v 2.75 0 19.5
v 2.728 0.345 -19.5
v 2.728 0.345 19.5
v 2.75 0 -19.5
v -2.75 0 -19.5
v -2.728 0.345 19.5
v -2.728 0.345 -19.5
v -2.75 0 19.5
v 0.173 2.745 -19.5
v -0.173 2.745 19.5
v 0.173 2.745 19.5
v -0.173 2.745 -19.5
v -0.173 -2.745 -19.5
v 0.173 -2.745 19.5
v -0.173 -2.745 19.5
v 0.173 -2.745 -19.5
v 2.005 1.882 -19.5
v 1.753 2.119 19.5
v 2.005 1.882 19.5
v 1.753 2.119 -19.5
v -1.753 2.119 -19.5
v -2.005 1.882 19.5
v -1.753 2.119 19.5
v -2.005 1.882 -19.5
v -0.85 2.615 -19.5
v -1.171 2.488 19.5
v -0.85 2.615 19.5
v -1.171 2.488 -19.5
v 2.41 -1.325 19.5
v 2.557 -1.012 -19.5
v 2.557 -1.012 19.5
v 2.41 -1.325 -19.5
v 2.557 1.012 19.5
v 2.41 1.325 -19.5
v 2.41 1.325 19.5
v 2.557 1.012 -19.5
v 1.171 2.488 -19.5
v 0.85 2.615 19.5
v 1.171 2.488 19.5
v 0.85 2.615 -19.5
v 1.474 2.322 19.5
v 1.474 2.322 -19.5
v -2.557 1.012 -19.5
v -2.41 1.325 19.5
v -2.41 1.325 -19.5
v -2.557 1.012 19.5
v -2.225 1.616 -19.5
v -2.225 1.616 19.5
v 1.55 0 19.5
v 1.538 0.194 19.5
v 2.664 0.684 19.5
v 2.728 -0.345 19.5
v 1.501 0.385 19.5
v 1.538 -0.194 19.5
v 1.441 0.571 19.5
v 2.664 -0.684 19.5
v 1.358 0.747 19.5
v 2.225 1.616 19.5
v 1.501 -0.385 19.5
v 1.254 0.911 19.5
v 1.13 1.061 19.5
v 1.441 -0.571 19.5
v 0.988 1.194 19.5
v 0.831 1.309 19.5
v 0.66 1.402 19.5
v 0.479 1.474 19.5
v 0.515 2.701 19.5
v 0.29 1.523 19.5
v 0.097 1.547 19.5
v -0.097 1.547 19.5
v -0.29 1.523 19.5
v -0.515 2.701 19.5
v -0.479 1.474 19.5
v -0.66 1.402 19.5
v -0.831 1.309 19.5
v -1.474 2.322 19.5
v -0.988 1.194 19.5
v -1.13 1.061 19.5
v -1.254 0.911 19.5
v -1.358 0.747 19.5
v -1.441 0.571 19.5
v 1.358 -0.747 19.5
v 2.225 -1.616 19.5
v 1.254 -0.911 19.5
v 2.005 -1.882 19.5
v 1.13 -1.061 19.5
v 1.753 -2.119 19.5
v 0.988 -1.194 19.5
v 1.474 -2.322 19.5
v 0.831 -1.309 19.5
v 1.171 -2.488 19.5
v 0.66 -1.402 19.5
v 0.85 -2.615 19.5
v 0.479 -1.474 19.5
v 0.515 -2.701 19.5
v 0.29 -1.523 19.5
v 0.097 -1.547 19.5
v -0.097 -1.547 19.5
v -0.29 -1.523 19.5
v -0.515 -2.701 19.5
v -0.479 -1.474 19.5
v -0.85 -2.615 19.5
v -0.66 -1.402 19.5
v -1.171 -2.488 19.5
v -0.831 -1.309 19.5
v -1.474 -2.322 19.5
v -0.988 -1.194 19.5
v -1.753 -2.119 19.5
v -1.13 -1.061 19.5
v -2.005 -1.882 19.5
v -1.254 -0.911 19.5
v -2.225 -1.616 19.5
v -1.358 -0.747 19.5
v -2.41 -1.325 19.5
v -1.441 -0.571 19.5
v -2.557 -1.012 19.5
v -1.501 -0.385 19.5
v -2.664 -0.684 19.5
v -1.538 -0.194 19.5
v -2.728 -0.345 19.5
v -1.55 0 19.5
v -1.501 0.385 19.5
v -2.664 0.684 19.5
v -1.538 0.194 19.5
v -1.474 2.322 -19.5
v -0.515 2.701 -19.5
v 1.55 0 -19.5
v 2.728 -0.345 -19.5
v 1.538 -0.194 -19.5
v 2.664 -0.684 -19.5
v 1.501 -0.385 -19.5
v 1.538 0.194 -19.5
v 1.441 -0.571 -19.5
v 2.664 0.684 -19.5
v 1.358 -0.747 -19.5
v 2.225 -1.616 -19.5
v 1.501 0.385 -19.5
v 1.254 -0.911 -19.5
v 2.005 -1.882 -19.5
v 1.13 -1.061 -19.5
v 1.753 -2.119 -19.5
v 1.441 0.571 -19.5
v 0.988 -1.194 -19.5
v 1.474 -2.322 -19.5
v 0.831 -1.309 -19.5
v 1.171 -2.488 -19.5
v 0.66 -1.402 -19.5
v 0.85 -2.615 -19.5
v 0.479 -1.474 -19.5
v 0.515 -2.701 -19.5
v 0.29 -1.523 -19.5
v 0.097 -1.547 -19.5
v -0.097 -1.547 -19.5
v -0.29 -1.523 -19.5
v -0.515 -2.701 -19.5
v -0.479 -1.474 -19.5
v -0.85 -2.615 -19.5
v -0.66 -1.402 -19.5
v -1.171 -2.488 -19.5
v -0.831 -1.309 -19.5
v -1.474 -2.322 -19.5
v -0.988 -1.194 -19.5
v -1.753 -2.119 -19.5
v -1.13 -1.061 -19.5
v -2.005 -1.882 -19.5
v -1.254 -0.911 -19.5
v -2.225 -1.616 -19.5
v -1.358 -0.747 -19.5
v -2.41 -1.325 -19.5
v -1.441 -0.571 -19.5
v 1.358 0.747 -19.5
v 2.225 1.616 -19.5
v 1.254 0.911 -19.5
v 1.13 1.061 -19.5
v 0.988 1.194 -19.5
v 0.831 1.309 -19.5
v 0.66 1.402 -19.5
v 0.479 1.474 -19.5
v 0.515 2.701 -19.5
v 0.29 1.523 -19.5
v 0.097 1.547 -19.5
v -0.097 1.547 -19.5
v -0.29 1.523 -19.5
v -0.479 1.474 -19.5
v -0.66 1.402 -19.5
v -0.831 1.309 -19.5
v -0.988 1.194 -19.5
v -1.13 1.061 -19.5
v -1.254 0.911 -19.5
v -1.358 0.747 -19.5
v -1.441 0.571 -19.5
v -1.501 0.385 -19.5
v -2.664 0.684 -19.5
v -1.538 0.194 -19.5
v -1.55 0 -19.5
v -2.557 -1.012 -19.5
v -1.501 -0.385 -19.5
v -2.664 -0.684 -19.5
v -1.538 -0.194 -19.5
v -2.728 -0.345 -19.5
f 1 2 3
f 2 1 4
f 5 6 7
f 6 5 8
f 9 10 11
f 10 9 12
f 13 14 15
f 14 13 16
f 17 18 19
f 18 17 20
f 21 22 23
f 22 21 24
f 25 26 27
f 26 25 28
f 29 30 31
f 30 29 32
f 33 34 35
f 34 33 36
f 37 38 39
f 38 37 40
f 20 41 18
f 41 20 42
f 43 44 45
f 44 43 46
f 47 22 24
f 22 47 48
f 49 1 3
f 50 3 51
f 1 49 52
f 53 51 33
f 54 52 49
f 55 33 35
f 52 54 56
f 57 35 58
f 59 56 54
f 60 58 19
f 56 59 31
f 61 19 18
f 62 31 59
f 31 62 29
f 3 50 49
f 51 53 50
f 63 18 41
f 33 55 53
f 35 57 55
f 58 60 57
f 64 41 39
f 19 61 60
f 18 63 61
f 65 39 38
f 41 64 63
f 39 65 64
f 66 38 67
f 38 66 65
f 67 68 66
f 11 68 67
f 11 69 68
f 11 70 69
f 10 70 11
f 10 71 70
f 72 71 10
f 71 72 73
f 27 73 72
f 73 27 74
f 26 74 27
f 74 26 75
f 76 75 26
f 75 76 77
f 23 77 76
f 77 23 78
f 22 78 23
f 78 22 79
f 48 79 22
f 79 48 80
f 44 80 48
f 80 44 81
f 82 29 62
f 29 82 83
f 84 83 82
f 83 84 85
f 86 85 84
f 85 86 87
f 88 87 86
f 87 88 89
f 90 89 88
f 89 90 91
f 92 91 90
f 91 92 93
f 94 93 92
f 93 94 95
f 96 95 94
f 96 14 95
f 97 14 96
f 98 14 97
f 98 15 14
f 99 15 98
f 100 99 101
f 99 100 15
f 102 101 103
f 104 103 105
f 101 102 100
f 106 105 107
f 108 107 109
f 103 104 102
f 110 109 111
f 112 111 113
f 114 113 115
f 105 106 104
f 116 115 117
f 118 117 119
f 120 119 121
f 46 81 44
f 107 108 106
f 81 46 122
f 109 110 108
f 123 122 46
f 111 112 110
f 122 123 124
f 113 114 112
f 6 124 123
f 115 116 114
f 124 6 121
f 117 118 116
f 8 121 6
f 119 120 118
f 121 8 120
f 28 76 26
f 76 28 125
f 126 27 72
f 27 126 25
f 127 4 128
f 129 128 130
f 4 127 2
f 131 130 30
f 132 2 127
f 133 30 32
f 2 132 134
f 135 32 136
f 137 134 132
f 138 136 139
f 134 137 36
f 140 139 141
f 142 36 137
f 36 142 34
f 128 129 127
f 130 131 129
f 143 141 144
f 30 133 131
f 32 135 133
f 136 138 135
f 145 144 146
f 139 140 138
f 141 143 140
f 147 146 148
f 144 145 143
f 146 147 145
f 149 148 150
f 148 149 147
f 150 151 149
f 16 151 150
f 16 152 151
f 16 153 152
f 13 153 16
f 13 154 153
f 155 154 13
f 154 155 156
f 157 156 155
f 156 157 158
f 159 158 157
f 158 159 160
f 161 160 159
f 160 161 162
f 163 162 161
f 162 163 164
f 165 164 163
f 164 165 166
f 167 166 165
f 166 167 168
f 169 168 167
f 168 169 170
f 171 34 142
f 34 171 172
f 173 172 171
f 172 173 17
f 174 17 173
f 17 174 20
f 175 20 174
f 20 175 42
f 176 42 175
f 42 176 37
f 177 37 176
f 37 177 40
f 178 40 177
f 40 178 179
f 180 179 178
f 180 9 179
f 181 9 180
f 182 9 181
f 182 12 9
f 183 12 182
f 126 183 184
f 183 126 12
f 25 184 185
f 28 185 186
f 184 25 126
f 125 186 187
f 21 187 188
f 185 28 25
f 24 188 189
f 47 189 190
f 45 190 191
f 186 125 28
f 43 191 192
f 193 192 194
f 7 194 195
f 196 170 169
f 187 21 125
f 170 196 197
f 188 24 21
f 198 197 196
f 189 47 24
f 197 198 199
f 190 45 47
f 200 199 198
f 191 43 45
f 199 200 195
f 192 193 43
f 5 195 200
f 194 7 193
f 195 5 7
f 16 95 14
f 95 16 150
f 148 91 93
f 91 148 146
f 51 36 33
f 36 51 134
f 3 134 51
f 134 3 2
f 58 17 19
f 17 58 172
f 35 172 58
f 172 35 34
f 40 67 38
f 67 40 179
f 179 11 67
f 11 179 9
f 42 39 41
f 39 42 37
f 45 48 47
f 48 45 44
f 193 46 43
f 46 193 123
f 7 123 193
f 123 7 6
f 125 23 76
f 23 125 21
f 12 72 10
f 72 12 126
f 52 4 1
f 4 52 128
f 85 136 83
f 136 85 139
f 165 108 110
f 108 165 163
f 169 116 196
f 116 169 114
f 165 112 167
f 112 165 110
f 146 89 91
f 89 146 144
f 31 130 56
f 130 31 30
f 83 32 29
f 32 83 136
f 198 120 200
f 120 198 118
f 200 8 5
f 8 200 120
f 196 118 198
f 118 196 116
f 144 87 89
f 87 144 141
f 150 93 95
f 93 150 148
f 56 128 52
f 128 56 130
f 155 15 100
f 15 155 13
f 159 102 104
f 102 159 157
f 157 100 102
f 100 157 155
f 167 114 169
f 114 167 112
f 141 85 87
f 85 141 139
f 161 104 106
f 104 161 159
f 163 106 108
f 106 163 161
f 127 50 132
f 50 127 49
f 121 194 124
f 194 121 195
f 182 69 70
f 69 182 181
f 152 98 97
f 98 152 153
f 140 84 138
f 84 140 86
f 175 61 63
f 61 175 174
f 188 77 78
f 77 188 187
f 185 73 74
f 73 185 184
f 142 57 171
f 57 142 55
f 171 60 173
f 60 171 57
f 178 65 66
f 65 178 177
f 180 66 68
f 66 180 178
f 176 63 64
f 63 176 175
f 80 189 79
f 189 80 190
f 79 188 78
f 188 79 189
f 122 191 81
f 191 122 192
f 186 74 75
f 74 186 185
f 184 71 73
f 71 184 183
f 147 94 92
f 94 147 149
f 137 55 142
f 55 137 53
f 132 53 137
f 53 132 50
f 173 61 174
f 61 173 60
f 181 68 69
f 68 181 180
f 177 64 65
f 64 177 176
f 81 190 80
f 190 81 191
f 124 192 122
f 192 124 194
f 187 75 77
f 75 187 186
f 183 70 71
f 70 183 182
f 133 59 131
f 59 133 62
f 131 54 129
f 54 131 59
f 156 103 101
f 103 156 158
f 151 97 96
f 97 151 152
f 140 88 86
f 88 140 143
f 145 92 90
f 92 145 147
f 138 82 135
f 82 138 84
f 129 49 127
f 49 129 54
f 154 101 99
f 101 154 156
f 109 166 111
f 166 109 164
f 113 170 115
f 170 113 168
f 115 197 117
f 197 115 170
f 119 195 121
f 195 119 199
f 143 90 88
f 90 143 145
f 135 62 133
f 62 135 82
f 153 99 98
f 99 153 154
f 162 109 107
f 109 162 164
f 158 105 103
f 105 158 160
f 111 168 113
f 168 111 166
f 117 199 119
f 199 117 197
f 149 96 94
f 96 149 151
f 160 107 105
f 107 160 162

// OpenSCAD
$fn = 50;


difference() {
	union() {
		translate(v = [0, 0, -19.5000000000]) {
			cylinder(h = 39, r = 2.7500000000);
		}
	}
	union() {
		translate(v = [0, 0, -100.0000000000]) {
			cylinder(h = 200, r = 1.5500000000);
		}
	}
}
